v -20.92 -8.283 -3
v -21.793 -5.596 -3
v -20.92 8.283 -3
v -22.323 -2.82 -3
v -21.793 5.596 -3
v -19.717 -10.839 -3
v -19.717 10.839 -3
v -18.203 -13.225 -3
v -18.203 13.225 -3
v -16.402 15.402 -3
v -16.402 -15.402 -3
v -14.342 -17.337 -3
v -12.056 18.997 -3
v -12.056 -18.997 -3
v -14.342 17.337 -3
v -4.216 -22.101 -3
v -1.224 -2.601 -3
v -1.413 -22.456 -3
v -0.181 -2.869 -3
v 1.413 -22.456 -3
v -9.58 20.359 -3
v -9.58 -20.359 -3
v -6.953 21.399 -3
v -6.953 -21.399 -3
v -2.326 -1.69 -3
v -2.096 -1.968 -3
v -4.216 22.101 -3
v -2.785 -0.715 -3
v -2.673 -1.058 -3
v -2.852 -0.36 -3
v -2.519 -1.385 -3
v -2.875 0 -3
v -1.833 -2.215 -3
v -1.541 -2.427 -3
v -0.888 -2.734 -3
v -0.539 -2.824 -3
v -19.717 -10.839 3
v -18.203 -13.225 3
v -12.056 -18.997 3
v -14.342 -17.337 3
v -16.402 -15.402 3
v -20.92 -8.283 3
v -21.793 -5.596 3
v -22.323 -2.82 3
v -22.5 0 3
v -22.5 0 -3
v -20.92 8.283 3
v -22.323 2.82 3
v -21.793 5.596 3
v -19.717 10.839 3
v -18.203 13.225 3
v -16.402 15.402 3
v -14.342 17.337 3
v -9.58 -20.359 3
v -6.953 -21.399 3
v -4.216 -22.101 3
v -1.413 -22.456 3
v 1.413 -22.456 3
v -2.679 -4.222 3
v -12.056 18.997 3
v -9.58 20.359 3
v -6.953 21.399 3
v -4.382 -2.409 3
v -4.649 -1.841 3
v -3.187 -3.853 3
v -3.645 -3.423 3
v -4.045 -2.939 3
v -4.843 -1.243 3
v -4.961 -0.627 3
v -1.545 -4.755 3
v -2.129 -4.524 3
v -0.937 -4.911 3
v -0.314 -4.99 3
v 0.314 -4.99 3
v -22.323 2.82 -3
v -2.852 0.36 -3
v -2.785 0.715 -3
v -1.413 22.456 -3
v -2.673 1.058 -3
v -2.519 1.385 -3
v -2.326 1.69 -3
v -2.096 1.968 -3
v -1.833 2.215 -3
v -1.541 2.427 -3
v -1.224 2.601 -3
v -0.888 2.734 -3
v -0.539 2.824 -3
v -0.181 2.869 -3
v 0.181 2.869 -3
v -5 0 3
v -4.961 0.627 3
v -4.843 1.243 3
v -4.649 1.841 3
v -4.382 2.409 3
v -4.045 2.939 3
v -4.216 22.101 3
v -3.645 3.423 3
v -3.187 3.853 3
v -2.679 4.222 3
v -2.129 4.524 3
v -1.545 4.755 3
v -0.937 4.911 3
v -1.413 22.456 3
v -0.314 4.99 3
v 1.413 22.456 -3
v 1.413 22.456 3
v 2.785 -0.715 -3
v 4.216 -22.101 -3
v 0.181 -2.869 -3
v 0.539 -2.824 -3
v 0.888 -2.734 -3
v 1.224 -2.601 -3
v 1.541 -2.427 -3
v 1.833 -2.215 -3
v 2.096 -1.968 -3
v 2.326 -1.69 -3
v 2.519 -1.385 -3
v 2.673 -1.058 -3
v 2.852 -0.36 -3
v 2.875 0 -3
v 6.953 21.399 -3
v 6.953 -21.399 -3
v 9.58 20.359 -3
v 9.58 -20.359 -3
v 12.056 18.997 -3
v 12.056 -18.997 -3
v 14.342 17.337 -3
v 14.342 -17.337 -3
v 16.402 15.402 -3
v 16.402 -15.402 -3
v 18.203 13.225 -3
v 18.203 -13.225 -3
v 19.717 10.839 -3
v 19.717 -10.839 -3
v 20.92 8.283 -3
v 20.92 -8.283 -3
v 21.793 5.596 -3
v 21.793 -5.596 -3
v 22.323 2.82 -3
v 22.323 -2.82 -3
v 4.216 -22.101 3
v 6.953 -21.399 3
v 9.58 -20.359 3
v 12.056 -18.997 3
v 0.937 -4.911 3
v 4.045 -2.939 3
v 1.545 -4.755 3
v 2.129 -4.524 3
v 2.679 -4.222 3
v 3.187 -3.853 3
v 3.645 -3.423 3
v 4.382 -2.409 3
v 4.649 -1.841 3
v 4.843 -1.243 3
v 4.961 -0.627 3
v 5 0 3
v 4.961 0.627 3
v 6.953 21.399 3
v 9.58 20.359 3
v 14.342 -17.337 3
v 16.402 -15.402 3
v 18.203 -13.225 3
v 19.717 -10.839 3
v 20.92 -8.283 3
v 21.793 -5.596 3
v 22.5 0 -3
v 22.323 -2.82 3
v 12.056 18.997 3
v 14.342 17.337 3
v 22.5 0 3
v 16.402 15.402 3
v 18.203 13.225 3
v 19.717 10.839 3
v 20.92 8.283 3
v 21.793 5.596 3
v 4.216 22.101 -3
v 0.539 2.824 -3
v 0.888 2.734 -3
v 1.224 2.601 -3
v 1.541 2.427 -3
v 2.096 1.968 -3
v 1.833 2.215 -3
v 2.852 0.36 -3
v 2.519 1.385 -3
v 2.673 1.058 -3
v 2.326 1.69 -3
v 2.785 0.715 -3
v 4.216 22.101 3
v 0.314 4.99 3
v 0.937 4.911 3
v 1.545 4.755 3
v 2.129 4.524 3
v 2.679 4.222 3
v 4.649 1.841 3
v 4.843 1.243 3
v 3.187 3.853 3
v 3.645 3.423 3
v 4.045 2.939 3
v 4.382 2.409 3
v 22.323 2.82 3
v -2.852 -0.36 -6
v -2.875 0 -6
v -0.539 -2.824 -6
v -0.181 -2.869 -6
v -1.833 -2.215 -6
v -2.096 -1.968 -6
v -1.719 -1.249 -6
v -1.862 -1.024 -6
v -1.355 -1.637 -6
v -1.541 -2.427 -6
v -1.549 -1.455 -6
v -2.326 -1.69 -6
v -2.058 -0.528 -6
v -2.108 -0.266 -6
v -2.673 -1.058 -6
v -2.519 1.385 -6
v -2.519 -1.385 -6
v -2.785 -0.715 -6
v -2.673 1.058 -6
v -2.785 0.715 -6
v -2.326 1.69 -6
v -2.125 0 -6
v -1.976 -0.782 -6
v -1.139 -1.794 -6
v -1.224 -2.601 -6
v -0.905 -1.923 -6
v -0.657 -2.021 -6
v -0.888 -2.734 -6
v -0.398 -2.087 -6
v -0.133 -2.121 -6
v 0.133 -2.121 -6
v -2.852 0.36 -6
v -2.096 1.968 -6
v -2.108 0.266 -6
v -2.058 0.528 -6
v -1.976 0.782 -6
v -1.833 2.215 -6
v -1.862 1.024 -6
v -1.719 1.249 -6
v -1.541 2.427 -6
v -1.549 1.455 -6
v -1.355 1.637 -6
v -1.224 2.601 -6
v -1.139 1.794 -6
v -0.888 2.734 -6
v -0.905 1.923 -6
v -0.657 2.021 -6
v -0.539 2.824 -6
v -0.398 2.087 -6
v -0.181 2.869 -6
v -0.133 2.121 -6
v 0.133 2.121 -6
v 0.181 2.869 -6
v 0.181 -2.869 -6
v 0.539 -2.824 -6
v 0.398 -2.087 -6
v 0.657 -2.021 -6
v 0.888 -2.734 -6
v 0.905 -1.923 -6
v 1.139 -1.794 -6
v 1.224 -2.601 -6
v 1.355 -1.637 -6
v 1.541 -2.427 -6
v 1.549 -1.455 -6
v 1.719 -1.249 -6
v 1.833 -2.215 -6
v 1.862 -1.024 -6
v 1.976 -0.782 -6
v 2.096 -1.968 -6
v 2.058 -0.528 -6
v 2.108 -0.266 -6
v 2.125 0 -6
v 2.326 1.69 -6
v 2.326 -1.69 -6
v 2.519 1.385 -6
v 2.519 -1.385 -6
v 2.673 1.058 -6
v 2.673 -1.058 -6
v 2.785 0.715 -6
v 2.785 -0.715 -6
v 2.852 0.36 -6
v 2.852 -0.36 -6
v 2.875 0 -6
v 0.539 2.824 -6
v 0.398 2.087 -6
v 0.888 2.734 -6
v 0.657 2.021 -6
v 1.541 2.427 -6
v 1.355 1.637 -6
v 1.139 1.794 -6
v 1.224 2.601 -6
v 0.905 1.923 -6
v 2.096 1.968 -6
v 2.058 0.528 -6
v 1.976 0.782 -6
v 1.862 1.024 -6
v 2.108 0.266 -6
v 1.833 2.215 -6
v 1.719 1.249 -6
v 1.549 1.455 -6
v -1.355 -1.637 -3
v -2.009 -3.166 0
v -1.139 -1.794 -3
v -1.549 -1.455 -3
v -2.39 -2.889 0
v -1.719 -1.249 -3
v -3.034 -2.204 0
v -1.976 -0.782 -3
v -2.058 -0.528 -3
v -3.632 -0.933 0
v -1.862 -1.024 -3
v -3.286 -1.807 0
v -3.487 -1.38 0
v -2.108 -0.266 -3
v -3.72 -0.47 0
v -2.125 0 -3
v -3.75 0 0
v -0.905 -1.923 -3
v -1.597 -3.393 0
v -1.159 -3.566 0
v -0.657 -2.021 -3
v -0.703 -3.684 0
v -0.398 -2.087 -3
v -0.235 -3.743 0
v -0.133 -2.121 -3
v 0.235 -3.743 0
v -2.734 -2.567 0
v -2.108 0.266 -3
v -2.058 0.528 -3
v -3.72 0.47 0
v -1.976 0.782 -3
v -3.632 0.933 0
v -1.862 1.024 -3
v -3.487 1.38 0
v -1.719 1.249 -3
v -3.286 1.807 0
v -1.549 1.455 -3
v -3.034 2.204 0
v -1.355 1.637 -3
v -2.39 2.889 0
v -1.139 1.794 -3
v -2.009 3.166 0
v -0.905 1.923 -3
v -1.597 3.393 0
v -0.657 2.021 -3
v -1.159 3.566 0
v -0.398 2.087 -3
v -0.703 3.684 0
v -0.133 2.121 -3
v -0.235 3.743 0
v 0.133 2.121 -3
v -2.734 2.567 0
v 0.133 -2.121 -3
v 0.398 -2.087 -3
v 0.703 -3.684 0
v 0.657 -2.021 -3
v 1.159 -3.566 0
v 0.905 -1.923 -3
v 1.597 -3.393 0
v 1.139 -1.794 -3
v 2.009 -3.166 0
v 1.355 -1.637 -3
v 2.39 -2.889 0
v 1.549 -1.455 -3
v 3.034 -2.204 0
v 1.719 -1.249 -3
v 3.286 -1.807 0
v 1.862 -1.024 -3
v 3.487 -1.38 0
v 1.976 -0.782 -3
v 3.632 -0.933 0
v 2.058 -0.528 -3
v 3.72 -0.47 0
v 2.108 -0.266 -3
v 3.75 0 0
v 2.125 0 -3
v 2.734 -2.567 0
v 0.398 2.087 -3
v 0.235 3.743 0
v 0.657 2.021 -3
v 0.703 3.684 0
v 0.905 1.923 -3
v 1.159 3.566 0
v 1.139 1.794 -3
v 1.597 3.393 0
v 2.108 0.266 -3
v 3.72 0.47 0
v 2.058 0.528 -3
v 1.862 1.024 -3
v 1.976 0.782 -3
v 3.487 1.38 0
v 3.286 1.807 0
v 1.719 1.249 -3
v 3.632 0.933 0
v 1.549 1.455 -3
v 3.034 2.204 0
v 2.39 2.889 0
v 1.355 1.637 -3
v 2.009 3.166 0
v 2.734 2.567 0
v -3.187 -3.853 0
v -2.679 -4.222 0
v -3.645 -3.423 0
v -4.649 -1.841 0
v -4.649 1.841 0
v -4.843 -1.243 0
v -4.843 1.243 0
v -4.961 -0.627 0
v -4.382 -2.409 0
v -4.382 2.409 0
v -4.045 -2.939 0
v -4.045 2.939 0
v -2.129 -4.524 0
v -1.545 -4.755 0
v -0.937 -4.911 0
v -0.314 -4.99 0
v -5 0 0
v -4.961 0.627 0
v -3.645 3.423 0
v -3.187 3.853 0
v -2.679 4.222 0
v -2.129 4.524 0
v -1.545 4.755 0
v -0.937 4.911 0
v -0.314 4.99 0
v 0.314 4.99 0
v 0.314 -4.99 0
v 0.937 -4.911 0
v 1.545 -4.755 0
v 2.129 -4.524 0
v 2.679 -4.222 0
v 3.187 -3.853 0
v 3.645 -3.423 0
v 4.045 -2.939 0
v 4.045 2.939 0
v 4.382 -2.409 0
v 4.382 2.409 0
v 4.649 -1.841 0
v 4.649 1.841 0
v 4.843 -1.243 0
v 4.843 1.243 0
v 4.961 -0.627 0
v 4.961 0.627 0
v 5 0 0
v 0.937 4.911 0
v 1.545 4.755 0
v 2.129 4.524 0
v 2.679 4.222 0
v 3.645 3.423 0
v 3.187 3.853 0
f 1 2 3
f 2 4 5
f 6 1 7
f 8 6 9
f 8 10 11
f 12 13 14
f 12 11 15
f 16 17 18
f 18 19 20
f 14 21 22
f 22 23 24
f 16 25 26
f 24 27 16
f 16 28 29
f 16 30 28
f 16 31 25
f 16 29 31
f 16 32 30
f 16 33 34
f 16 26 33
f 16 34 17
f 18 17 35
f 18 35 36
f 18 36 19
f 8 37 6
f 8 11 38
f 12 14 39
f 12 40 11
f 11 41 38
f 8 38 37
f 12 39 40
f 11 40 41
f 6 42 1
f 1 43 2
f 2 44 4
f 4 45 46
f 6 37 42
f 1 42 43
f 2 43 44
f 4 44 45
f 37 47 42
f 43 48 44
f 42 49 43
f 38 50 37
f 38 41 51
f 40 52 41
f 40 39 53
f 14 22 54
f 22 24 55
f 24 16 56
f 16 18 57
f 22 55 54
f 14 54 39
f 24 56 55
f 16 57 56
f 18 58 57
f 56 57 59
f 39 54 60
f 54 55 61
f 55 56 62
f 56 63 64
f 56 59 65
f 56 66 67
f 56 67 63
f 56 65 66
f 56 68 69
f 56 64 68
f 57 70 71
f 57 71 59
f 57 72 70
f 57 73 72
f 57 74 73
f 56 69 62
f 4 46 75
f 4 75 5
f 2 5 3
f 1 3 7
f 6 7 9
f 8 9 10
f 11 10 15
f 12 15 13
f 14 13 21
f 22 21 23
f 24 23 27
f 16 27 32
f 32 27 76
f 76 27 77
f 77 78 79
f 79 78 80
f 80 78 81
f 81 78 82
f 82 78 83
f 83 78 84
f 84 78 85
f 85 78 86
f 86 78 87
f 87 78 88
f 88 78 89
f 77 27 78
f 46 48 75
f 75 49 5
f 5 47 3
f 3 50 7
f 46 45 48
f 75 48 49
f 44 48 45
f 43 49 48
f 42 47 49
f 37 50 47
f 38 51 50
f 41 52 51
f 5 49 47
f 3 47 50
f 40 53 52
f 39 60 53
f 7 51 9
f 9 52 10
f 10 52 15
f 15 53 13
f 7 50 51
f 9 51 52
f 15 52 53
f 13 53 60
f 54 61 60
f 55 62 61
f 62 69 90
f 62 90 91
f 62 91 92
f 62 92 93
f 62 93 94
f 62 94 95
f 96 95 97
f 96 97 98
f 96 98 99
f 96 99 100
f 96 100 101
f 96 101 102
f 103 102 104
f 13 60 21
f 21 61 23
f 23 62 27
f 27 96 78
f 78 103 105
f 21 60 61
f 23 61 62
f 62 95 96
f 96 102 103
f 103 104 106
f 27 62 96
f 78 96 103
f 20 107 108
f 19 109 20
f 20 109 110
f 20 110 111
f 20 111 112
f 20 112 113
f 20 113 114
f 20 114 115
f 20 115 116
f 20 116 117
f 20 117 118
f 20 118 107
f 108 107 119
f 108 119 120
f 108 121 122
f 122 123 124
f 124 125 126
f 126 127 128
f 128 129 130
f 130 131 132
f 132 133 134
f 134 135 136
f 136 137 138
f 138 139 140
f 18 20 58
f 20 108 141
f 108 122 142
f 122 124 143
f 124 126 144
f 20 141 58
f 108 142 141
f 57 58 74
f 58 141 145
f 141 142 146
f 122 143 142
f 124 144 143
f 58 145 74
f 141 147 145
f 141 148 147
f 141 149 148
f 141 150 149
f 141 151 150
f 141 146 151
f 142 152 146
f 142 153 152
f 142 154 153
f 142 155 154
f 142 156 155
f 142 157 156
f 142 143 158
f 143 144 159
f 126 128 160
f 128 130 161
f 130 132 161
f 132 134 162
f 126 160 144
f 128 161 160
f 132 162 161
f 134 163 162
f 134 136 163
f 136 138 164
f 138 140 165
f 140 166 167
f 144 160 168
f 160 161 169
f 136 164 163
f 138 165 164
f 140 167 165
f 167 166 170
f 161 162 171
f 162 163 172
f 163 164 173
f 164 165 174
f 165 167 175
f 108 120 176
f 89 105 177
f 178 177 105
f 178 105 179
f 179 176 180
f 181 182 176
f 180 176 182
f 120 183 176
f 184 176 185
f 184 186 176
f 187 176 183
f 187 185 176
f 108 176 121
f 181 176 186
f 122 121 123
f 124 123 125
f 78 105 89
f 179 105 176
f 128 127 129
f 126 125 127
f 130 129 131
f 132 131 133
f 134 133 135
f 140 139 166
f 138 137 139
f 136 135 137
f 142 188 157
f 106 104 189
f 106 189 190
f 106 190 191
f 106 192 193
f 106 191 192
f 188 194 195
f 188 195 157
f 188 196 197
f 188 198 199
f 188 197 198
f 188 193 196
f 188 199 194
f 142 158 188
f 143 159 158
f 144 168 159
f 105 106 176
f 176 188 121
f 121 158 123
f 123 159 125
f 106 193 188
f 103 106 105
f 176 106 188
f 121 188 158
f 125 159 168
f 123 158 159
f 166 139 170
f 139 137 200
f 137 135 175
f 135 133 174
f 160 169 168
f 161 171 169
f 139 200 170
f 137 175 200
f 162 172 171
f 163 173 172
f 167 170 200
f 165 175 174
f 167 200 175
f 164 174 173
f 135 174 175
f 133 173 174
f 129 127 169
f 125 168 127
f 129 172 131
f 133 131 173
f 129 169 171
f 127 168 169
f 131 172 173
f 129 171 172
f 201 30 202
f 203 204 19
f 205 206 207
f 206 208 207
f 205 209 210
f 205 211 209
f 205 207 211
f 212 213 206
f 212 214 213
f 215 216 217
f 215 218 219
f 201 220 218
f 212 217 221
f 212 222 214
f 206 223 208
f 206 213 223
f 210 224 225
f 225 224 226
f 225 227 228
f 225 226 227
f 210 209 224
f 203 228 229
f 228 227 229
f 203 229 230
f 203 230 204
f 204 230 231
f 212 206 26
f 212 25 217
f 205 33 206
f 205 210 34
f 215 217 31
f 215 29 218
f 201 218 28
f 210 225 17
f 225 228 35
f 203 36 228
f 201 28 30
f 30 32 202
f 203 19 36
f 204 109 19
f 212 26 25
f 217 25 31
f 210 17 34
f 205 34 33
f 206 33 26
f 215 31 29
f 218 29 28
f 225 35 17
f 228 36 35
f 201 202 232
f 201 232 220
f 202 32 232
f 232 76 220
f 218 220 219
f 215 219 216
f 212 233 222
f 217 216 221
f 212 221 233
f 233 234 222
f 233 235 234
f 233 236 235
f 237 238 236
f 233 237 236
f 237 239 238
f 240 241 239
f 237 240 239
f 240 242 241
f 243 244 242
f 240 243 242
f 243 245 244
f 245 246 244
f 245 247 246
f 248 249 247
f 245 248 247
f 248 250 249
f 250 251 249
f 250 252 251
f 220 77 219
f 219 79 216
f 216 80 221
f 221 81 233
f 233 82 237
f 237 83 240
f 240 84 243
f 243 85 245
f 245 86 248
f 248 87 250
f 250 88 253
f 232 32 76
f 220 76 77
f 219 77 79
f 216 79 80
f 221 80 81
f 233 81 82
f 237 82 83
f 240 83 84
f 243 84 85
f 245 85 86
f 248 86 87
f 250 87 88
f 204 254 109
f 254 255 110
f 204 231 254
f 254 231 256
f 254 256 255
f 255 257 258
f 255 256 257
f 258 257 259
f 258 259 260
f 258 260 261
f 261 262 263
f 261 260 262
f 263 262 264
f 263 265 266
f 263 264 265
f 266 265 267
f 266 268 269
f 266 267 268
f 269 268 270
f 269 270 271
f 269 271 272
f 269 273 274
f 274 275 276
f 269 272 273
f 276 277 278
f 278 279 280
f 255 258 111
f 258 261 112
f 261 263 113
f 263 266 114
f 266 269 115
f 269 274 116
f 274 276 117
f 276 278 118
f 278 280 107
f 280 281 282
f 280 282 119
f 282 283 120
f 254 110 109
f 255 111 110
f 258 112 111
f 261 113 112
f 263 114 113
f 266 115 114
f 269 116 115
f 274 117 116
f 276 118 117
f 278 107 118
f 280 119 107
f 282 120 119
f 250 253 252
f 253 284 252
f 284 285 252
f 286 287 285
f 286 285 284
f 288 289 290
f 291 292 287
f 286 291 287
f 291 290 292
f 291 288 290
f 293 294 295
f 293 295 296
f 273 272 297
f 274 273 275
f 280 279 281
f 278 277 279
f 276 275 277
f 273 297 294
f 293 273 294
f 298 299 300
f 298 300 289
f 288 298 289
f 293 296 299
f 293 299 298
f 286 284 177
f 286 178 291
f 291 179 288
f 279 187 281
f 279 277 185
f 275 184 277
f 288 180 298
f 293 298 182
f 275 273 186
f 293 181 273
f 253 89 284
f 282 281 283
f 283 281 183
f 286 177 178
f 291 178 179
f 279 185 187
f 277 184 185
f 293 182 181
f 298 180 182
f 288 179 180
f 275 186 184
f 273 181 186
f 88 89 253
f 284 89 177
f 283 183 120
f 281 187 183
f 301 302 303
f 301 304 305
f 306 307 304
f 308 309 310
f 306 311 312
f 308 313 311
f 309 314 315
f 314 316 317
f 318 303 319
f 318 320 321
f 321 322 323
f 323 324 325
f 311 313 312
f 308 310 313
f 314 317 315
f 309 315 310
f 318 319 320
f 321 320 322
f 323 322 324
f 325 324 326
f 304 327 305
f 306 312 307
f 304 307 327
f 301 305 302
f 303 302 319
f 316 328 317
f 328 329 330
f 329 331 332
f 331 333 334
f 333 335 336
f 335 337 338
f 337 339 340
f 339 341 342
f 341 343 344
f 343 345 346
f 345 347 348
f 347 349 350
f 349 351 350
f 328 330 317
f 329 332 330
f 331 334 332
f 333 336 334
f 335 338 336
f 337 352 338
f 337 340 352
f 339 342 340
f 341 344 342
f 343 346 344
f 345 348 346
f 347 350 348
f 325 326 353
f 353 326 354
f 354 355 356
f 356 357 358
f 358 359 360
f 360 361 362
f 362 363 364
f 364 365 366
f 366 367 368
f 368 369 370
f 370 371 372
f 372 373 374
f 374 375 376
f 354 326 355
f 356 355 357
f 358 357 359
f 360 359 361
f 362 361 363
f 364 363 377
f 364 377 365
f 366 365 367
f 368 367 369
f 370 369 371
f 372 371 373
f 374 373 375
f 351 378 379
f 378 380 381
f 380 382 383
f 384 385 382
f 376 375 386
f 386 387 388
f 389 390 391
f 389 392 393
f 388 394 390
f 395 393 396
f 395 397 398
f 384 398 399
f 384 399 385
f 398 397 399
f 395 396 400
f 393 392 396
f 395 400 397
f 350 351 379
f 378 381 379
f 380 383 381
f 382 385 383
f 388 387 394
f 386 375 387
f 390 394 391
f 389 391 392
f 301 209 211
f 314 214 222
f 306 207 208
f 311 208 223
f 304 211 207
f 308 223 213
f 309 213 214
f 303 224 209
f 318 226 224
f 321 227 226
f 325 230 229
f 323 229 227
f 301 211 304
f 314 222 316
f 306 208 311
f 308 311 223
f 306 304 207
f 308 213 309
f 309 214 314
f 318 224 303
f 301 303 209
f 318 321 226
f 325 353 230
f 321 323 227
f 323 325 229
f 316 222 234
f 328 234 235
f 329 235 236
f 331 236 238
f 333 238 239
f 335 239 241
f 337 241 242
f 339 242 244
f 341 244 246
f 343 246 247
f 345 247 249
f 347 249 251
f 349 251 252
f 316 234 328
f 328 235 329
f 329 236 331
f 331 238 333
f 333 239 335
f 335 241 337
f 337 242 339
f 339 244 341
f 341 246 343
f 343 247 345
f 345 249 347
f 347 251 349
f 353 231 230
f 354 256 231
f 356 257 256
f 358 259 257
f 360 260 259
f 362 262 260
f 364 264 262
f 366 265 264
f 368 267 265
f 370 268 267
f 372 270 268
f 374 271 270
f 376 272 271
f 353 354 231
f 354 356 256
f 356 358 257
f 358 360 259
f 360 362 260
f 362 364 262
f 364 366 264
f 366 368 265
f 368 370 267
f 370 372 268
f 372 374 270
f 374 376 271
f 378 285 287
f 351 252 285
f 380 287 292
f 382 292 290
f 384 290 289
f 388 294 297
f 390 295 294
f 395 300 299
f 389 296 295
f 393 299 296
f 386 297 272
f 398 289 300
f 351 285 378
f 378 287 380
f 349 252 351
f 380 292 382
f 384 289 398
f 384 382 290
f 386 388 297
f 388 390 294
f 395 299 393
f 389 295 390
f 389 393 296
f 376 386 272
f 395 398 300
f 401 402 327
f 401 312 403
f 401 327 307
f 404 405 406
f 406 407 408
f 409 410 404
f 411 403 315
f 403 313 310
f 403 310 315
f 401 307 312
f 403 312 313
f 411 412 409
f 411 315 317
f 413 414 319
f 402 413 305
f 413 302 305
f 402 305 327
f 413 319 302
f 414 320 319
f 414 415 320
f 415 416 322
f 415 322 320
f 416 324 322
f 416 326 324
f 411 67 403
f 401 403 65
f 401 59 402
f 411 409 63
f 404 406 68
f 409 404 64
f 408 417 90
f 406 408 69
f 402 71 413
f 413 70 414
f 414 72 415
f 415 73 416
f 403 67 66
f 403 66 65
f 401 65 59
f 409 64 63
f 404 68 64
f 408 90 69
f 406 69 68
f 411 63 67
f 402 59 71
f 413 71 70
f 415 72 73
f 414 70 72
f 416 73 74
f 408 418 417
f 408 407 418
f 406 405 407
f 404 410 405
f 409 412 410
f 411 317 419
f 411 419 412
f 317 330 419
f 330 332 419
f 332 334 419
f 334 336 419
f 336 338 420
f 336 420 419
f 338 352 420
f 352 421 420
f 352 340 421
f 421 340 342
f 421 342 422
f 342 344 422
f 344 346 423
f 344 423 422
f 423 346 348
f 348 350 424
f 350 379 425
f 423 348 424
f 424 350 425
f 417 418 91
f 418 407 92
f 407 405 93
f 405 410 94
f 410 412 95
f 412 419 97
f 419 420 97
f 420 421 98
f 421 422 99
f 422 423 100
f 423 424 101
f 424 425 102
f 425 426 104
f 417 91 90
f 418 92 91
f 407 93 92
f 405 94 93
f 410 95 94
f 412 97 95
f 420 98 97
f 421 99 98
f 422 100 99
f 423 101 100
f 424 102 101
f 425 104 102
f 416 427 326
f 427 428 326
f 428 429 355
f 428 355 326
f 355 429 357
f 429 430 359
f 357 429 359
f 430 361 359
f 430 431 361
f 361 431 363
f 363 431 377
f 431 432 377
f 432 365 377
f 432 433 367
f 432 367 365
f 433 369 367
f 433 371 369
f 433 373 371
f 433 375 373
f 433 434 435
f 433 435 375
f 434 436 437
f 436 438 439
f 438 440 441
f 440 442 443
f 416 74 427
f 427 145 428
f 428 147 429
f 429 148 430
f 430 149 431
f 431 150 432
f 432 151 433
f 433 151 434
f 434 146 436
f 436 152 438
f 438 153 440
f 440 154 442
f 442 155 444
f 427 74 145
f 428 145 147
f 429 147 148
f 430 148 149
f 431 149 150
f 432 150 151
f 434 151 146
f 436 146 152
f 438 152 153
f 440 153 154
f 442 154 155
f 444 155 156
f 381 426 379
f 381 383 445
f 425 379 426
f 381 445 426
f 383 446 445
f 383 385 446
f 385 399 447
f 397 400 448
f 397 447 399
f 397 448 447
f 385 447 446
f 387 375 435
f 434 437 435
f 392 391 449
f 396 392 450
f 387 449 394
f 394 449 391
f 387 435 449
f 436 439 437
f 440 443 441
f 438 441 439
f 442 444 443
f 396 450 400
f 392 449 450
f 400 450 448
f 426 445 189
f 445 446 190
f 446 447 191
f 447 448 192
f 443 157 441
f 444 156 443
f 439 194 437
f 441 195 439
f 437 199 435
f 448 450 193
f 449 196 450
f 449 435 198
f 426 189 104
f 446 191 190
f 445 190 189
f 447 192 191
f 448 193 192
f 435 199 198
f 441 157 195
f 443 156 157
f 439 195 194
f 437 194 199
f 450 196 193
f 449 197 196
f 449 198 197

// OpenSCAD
$fn = 50;

difference() {
	union() {
		translate(v = [0, 0, -3.0]) {
			cylinder(h = 6, r = 22.5);
		}
		#translate(v = [0, 0, -6.0]) {
			cylinder(h = 6, r = 2.875);
		}
	}
	union() {
		translate(v = [0, 0, 0]) {
			rotate(a = [0, 0, 0]) {
				difference() {
					union() {
						translate(v = [0, 0, -6.0]) {
							cylinder(h = 6, r = 2.0);
						}
						translate(v = [0, 0, -3]) {
							cylinder(h = 3, r1 = 2.125, r2 = 3.75);
						}
						translate(v = [0, 0, -6.0]) {
							cylinder(h = 6, r = 2.125);
						}
						translate(v = [0, 0, -6.0]) {
							cylinder(h = 6, r = 2.0);
						}
					}
					union();
				}
			}
		}
		#cylinder(h = 3, r = 5.0);
	}
}
